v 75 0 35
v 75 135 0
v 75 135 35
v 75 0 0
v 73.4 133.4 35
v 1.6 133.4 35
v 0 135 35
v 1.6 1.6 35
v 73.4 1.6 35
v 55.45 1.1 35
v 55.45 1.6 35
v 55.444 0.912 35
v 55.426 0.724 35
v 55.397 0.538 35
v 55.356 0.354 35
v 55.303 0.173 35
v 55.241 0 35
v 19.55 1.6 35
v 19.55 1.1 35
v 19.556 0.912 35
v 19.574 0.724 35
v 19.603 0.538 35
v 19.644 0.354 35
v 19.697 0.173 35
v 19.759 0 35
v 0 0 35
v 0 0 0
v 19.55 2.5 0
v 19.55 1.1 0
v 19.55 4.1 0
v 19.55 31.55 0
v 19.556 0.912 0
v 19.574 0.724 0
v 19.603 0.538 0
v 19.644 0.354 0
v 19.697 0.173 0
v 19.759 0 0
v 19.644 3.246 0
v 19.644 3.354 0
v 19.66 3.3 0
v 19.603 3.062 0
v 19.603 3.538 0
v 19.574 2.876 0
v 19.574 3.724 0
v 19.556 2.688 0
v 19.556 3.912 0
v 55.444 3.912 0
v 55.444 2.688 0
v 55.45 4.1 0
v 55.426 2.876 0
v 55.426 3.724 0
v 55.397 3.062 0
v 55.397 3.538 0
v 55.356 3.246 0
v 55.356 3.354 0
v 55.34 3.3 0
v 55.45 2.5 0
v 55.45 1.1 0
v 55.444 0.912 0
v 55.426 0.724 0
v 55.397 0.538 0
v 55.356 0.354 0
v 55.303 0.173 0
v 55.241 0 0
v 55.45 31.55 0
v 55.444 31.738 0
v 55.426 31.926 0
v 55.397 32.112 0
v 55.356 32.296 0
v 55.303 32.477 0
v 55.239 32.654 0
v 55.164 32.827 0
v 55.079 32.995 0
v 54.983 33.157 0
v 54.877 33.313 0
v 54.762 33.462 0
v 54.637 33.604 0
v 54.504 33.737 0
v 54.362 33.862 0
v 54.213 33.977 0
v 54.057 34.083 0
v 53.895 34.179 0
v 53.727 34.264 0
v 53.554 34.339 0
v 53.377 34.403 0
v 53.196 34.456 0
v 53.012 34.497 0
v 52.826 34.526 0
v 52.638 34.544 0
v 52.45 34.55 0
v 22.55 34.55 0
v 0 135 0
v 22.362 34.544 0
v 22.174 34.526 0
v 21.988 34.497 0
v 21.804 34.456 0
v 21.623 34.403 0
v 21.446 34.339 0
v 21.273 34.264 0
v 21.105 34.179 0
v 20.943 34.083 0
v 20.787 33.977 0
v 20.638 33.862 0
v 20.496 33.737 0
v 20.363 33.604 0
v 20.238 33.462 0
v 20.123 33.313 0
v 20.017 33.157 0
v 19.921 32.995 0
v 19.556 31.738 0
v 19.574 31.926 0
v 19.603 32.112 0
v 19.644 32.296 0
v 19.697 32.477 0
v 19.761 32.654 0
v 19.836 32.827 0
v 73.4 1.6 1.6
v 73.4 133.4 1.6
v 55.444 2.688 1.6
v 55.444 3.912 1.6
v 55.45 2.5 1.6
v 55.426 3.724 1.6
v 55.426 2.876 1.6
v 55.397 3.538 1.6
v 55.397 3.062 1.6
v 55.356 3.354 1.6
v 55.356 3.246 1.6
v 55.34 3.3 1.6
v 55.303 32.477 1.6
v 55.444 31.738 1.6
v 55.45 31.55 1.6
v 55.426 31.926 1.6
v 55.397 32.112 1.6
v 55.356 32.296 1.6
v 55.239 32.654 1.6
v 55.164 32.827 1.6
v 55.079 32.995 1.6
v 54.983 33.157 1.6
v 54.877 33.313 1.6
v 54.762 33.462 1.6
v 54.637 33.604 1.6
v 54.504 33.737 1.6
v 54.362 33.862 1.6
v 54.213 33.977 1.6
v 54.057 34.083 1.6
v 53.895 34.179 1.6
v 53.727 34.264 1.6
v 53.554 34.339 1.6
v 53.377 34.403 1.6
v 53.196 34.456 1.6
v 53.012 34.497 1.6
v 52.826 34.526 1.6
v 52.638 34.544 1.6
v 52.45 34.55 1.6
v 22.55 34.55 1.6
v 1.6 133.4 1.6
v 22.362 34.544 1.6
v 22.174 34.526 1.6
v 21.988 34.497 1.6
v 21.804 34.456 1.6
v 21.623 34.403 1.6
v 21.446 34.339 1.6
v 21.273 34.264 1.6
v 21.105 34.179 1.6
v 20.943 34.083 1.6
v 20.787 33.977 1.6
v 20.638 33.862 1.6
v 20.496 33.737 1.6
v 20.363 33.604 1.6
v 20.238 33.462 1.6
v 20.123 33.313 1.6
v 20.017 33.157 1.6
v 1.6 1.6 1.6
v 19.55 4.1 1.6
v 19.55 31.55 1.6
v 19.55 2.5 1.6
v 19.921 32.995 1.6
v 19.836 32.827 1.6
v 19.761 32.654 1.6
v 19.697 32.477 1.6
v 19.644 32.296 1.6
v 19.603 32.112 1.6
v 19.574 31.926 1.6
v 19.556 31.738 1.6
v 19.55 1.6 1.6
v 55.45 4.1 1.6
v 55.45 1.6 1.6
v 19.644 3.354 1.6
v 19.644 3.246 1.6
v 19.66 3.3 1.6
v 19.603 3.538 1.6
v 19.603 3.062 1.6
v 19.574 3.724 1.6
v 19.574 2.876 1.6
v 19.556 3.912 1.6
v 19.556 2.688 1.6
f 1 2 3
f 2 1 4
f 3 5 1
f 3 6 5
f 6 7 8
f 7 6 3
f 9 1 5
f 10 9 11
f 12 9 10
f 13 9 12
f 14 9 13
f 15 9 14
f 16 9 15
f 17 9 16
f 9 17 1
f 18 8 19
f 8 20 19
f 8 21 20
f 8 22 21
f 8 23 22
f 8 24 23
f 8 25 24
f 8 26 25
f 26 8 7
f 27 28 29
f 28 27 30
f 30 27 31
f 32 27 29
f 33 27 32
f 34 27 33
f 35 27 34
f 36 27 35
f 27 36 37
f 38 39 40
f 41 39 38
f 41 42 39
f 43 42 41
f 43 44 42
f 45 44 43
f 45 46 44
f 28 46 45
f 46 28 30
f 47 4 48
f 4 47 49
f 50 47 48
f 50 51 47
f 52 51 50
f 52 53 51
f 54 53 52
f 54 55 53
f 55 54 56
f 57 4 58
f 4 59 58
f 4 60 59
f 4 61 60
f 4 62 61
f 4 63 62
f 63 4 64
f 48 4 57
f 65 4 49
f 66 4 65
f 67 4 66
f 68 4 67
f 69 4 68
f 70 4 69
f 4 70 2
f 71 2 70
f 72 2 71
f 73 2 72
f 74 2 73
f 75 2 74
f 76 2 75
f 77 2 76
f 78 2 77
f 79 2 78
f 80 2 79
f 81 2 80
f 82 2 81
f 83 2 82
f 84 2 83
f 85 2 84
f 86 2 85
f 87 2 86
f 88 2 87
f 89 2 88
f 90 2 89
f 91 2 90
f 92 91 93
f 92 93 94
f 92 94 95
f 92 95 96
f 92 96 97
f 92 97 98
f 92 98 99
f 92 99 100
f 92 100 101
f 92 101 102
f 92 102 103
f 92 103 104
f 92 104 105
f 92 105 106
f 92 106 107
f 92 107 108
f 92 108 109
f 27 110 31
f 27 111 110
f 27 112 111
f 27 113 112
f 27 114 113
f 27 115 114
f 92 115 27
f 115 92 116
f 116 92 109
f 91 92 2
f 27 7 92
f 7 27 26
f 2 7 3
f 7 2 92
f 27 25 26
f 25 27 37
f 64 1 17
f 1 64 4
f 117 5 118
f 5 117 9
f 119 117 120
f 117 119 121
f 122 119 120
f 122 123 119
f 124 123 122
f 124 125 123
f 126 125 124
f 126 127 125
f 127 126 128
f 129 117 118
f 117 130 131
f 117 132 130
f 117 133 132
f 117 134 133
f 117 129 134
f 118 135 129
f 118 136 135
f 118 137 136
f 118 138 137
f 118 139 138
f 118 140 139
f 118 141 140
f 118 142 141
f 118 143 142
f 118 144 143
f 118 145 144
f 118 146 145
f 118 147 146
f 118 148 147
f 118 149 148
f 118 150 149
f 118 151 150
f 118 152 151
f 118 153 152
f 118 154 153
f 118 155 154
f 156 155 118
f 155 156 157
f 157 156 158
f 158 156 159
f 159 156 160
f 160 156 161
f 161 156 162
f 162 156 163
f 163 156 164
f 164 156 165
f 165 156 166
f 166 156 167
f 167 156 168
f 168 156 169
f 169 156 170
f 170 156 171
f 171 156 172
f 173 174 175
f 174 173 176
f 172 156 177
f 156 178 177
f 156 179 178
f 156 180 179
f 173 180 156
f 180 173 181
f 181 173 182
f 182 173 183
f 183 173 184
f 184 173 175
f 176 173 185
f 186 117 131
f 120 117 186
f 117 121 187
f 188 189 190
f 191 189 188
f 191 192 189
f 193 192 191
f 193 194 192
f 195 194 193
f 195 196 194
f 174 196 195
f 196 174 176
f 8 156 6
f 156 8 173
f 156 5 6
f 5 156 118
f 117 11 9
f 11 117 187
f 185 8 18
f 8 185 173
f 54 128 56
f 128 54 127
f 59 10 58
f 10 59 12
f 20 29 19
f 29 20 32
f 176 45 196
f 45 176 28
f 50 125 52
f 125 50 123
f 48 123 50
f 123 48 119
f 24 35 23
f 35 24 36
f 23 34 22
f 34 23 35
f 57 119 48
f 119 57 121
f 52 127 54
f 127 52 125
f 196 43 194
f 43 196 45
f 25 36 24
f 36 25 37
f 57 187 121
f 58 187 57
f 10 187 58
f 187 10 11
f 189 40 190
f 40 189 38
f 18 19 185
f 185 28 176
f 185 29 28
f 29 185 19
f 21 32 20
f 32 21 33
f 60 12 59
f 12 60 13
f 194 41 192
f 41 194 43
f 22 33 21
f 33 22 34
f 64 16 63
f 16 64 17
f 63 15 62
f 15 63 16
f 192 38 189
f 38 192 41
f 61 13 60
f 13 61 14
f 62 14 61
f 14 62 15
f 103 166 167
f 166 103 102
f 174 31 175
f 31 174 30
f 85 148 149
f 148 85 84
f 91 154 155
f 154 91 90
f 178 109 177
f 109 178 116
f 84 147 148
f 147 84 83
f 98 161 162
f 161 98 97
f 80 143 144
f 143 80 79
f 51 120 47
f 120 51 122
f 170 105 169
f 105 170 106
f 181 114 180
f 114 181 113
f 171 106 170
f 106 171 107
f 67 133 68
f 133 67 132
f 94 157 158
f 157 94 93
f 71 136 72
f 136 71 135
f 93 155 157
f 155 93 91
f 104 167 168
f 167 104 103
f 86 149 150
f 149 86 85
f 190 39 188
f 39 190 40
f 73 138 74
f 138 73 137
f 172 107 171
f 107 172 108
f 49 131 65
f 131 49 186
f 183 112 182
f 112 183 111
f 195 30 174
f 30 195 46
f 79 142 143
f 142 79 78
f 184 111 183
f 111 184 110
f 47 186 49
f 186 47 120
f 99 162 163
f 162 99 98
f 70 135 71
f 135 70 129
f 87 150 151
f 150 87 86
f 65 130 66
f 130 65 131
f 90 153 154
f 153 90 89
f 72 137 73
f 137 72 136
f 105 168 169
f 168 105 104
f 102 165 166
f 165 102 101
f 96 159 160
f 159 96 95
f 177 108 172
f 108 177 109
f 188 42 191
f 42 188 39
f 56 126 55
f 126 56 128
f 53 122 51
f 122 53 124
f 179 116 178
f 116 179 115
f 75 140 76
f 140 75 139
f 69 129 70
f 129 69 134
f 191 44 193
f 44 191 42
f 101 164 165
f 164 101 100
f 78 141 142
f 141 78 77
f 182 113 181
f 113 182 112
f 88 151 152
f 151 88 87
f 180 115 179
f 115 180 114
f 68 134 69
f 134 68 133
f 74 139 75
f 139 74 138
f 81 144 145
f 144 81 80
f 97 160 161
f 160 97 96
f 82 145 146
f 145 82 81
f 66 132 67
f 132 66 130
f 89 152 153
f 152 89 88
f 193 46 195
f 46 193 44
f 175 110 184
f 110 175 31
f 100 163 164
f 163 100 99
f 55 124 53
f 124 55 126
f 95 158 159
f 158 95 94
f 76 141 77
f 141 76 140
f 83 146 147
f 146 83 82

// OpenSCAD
include <boardgame_insert_toolkit_lib.2.scad>;

// determines whether lids are output.
g_b_print_lid = true;

// determines whether boxes are output.
g_b_print_box = true;

// Focus on one box
g_isolated_print_box = "";

// Used to visualize how all of the boxes fit together.
g_b_visualization = false;

// this is the outer wall thickness.
// Default = 1.5mm
g_wall_thickness = 1.6;

// The tolerance value is extra space put between planes of the lid and box
// that fit together. Increase the tolerance to loosen the fit and decrease it
// to tighten it.
//
// Note that the tolerance is applied exclusively to the lid.
// So if the lid is too tight or too loose, change this value ( up for looser
// fit, down for tighter fit ) and you only need to reprint the lid.
//
// The exception is the stackable box, where the bottom of the box is the lid
// of the box below, in which case the tolerance also affects that box bottom.
//
g_tolerance = 0.15;

// This adjusts the position of the lid detents downward.
// The larger the value, the bigger the gap between the lid and the box.
g_tolerance_detents_pos = 0.1;

data = [
  [
    "simple box",
    [
      [BOX_SIZE_XYZ, [75, 135, 35.0]],
      [BOX_NO_LID_B, t],
      [
        BOX_COMPONENT,
        [
          [
            CMP_COMPARTMENT_SIZE_XYZ,
            [71.8, 131.8, 33.4]
          ],
          [
            CMP_CUTOUT_SIDES_4B, [t, f, f, f]
          ]
        ]
      ]
    ]
  ]
];

MakeAll();
